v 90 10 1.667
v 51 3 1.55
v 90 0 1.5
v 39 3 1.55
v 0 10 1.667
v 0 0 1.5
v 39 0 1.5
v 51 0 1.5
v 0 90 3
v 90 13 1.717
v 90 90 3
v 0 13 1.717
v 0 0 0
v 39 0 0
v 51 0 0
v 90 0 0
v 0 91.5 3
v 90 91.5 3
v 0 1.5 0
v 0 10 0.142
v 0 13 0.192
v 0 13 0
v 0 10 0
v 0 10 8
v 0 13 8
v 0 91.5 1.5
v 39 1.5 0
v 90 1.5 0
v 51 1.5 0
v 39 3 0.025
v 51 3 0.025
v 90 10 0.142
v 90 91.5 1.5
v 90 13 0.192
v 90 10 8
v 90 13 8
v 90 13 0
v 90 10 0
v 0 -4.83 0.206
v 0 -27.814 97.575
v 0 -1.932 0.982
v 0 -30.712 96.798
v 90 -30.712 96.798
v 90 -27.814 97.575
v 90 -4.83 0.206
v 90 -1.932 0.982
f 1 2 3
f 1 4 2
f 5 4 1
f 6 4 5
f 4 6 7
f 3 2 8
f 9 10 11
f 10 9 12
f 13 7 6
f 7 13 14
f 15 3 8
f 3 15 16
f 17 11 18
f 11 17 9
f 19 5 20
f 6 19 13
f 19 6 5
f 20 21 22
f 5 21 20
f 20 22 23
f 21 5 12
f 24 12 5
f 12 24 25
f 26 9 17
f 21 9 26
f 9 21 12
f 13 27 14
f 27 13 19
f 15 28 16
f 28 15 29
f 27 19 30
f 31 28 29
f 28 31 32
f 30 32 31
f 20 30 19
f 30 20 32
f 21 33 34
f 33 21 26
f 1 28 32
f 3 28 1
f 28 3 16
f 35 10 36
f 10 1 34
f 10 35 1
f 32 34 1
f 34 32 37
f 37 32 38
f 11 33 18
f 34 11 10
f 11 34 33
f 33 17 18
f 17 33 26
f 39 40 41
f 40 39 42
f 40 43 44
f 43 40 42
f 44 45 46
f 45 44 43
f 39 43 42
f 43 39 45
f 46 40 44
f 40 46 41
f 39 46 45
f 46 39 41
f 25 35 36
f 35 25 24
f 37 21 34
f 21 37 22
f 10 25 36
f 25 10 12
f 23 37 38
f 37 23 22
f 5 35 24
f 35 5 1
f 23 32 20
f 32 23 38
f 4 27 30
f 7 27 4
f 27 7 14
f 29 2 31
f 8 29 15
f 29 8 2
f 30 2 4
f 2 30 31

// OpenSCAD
// Phone Stand with 15° tilt and cable slot
// All units in millimeters

// Parameters
phone_width = 75;          // Typical phone width
phone_thickness = 10;      // Typical phone thickness
stand_thickness = 1.5;     // Min wall thickness
base_depth = 90;           // Front-to-back depth
base_width = 90;           // Total width
back_height = 100;         // Support height
tilt_angle = 15;           // Tilt of phone support
lip_height = 8;            // Retaining lip height
cable_slot_width = 12;     // Cable slot width
cable_slot_height = 8;     // Cable slot height
cable_slot_offset = 10;    // Distance from front edge

// Derived
support_thickness = stand_thickness * 2;

// Modules
module base() {
    // Slightly tapered base for rigidity
    hull() {
        translate([0, 0, 0])
            cube([base_width, stand_thickness, stand_thickness]);
        translate([0, base_depth, stand_thickness])
            cube([base_width, stand_thickness, stand_thickness]);
    }
}

module back_support() {
    // Back plate holding the phone at an angle
    rotate([tilt_angle, 0, 0])
        translate([0, -phone_thickness/2, 0])
            cube([base_width, support_thickness, back_height]);
}

module front_lip() {
    // Retaining lip to keep phone from sliding off
    translate([0, cable_slot_offset, 0])
        cube([base_width, stand_thickness * 2, lip_height]);
}

module cable_slot() {
    // Slot for charging cable
    translate([(base_width - cable_slot_width)/2, 0, 0])
        cube([cable_slot_width, stand_thickness * 2, cable_slot_height]);
}

// Assembly
difference() {
    union() {
        base();
        // Create angled support
        translate([0, 0, stand_thickness])
            back_support();
        // Lip offset to align with inclined support
        front_lip();
    }
    // Cutout for cable slot
    cable_slot();
}
